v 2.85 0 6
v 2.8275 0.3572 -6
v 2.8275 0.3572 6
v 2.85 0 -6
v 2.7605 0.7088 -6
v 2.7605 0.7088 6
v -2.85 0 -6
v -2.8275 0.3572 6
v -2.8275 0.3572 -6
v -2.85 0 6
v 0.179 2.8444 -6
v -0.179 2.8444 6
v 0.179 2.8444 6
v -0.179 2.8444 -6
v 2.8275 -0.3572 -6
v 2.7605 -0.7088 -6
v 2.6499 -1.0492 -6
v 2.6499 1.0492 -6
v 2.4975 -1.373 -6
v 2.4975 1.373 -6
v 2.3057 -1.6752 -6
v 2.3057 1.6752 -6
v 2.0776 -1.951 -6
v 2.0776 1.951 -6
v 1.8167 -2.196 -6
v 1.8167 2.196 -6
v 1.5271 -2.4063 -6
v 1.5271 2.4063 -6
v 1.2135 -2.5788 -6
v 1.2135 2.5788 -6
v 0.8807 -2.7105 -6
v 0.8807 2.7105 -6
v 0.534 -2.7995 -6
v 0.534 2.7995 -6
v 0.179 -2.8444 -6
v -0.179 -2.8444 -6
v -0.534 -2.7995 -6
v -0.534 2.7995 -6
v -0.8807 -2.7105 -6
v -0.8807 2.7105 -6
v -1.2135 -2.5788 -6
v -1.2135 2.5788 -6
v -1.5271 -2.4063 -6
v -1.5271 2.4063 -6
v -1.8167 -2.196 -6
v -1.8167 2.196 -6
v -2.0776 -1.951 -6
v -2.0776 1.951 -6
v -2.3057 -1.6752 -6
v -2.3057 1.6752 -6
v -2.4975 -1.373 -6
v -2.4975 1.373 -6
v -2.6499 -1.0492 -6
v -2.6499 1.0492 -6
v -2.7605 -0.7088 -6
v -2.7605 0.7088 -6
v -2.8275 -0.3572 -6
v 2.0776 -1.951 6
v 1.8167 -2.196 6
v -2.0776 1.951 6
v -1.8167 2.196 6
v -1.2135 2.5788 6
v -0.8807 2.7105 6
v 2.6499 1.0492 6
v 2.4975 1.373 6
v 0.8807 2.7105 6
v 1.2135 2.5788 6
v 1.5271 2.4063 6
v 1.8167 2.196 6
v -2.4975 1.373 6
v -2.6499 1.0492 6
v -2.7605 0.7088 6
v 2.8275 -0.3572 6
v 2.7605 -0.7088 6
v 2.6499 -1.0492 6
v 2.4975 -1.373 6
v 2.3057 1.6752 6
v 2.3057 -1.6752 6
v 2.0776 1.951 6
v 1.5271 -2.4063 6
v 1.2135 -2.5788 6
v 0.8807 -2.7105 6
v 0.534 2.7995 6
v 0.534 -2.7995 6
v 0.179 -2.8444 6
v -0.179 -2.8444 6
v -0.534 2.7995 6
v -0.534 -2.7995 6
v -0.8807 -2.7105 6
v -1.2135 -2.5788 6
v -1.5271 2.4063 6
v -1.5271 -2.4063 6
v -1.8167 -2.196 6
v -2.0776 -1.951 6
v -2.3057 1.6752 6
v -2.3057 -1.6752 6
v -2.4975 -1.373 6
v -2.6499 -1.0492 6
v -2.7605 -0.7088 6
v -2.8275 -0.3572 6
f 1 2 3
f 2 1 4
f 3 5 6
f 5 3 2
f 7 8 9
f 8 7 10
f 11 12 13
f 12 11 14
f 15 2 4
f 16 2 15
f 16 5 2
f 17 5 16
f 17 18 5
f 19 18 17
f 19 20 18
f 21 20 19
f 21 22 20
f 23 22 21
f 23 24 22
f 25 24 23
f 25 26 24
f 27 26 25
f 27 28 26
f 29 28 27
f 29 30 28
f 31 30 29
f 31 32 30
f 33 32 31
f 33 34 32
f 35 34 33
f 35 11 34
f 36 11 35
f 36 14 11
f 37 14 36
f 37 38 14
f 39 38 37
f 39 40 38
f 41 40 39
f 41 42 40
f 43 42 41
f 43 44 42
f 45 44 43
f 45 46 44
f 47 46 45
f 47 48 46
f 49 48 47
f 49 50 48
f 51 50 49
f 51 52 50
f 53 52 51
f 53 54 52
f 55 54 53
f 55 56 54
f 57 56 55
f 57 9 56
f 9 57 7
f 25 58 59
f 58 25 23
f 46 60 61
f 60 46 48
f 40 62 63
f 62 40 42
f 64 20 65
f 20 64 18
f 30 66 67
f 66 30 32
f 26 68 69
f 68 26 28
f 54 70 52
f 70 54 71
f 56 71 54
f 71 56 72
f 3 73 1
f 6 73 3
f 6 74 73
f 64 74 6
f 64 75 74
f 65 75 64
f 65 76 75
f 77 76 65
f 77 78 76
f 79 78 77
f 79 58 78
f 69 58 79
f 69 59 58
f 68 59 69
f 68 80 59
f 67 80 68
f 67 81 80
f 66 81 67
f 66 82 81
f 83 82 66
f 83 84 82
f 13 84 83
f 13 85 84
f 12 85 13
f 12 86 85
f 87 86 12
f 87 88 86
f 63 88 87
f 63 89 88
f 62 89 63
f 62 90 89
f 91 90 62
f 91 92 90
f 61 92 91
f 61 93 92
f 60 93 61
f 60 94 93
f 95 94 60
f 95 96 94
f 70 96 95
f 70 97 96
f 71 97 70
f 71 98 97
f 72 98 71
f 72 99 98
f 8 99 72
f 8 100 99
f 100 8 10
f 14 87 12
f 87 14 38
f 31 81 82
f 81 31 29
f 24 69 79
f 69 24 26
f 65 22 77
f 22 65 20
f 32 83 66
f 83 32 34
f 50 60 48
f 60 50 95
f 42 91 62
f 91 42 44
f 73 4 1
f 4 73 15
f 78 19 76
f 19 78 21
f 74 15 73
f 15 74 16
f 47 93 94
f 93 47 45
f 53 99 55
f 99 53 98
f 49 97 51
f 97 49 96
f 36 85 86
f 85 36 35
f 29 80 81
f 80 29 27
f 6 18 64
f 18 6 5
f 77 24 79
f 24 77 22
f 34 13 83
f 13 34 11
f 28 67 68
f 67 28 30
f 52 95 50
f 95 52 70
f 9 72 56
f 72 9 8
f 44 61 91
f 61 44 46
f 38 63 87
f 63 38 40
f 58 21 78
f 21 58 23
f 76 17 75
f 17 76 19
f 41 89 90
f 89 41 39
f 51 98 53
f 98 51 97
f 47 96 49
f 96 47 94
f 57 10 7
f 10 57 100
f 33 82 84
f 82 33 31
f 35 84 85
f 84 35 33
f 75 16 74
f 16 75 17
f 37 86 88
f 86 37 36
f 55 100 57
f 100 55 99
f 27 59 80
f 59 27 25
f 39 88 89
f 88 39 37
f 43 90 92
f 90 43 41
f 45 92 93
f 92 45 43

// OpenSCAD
$fn = 50;


difference() {
	union() {
		translate(v = [0, 0, -6.0000000000]) {
			cylinder(h = 12, r = 2.8500000000);
		}
	}
	union() {
		translate(v = [0, 0, -100.0000000000]) {
			cylinder(h = 200, r = 0);
		}
	}
}
